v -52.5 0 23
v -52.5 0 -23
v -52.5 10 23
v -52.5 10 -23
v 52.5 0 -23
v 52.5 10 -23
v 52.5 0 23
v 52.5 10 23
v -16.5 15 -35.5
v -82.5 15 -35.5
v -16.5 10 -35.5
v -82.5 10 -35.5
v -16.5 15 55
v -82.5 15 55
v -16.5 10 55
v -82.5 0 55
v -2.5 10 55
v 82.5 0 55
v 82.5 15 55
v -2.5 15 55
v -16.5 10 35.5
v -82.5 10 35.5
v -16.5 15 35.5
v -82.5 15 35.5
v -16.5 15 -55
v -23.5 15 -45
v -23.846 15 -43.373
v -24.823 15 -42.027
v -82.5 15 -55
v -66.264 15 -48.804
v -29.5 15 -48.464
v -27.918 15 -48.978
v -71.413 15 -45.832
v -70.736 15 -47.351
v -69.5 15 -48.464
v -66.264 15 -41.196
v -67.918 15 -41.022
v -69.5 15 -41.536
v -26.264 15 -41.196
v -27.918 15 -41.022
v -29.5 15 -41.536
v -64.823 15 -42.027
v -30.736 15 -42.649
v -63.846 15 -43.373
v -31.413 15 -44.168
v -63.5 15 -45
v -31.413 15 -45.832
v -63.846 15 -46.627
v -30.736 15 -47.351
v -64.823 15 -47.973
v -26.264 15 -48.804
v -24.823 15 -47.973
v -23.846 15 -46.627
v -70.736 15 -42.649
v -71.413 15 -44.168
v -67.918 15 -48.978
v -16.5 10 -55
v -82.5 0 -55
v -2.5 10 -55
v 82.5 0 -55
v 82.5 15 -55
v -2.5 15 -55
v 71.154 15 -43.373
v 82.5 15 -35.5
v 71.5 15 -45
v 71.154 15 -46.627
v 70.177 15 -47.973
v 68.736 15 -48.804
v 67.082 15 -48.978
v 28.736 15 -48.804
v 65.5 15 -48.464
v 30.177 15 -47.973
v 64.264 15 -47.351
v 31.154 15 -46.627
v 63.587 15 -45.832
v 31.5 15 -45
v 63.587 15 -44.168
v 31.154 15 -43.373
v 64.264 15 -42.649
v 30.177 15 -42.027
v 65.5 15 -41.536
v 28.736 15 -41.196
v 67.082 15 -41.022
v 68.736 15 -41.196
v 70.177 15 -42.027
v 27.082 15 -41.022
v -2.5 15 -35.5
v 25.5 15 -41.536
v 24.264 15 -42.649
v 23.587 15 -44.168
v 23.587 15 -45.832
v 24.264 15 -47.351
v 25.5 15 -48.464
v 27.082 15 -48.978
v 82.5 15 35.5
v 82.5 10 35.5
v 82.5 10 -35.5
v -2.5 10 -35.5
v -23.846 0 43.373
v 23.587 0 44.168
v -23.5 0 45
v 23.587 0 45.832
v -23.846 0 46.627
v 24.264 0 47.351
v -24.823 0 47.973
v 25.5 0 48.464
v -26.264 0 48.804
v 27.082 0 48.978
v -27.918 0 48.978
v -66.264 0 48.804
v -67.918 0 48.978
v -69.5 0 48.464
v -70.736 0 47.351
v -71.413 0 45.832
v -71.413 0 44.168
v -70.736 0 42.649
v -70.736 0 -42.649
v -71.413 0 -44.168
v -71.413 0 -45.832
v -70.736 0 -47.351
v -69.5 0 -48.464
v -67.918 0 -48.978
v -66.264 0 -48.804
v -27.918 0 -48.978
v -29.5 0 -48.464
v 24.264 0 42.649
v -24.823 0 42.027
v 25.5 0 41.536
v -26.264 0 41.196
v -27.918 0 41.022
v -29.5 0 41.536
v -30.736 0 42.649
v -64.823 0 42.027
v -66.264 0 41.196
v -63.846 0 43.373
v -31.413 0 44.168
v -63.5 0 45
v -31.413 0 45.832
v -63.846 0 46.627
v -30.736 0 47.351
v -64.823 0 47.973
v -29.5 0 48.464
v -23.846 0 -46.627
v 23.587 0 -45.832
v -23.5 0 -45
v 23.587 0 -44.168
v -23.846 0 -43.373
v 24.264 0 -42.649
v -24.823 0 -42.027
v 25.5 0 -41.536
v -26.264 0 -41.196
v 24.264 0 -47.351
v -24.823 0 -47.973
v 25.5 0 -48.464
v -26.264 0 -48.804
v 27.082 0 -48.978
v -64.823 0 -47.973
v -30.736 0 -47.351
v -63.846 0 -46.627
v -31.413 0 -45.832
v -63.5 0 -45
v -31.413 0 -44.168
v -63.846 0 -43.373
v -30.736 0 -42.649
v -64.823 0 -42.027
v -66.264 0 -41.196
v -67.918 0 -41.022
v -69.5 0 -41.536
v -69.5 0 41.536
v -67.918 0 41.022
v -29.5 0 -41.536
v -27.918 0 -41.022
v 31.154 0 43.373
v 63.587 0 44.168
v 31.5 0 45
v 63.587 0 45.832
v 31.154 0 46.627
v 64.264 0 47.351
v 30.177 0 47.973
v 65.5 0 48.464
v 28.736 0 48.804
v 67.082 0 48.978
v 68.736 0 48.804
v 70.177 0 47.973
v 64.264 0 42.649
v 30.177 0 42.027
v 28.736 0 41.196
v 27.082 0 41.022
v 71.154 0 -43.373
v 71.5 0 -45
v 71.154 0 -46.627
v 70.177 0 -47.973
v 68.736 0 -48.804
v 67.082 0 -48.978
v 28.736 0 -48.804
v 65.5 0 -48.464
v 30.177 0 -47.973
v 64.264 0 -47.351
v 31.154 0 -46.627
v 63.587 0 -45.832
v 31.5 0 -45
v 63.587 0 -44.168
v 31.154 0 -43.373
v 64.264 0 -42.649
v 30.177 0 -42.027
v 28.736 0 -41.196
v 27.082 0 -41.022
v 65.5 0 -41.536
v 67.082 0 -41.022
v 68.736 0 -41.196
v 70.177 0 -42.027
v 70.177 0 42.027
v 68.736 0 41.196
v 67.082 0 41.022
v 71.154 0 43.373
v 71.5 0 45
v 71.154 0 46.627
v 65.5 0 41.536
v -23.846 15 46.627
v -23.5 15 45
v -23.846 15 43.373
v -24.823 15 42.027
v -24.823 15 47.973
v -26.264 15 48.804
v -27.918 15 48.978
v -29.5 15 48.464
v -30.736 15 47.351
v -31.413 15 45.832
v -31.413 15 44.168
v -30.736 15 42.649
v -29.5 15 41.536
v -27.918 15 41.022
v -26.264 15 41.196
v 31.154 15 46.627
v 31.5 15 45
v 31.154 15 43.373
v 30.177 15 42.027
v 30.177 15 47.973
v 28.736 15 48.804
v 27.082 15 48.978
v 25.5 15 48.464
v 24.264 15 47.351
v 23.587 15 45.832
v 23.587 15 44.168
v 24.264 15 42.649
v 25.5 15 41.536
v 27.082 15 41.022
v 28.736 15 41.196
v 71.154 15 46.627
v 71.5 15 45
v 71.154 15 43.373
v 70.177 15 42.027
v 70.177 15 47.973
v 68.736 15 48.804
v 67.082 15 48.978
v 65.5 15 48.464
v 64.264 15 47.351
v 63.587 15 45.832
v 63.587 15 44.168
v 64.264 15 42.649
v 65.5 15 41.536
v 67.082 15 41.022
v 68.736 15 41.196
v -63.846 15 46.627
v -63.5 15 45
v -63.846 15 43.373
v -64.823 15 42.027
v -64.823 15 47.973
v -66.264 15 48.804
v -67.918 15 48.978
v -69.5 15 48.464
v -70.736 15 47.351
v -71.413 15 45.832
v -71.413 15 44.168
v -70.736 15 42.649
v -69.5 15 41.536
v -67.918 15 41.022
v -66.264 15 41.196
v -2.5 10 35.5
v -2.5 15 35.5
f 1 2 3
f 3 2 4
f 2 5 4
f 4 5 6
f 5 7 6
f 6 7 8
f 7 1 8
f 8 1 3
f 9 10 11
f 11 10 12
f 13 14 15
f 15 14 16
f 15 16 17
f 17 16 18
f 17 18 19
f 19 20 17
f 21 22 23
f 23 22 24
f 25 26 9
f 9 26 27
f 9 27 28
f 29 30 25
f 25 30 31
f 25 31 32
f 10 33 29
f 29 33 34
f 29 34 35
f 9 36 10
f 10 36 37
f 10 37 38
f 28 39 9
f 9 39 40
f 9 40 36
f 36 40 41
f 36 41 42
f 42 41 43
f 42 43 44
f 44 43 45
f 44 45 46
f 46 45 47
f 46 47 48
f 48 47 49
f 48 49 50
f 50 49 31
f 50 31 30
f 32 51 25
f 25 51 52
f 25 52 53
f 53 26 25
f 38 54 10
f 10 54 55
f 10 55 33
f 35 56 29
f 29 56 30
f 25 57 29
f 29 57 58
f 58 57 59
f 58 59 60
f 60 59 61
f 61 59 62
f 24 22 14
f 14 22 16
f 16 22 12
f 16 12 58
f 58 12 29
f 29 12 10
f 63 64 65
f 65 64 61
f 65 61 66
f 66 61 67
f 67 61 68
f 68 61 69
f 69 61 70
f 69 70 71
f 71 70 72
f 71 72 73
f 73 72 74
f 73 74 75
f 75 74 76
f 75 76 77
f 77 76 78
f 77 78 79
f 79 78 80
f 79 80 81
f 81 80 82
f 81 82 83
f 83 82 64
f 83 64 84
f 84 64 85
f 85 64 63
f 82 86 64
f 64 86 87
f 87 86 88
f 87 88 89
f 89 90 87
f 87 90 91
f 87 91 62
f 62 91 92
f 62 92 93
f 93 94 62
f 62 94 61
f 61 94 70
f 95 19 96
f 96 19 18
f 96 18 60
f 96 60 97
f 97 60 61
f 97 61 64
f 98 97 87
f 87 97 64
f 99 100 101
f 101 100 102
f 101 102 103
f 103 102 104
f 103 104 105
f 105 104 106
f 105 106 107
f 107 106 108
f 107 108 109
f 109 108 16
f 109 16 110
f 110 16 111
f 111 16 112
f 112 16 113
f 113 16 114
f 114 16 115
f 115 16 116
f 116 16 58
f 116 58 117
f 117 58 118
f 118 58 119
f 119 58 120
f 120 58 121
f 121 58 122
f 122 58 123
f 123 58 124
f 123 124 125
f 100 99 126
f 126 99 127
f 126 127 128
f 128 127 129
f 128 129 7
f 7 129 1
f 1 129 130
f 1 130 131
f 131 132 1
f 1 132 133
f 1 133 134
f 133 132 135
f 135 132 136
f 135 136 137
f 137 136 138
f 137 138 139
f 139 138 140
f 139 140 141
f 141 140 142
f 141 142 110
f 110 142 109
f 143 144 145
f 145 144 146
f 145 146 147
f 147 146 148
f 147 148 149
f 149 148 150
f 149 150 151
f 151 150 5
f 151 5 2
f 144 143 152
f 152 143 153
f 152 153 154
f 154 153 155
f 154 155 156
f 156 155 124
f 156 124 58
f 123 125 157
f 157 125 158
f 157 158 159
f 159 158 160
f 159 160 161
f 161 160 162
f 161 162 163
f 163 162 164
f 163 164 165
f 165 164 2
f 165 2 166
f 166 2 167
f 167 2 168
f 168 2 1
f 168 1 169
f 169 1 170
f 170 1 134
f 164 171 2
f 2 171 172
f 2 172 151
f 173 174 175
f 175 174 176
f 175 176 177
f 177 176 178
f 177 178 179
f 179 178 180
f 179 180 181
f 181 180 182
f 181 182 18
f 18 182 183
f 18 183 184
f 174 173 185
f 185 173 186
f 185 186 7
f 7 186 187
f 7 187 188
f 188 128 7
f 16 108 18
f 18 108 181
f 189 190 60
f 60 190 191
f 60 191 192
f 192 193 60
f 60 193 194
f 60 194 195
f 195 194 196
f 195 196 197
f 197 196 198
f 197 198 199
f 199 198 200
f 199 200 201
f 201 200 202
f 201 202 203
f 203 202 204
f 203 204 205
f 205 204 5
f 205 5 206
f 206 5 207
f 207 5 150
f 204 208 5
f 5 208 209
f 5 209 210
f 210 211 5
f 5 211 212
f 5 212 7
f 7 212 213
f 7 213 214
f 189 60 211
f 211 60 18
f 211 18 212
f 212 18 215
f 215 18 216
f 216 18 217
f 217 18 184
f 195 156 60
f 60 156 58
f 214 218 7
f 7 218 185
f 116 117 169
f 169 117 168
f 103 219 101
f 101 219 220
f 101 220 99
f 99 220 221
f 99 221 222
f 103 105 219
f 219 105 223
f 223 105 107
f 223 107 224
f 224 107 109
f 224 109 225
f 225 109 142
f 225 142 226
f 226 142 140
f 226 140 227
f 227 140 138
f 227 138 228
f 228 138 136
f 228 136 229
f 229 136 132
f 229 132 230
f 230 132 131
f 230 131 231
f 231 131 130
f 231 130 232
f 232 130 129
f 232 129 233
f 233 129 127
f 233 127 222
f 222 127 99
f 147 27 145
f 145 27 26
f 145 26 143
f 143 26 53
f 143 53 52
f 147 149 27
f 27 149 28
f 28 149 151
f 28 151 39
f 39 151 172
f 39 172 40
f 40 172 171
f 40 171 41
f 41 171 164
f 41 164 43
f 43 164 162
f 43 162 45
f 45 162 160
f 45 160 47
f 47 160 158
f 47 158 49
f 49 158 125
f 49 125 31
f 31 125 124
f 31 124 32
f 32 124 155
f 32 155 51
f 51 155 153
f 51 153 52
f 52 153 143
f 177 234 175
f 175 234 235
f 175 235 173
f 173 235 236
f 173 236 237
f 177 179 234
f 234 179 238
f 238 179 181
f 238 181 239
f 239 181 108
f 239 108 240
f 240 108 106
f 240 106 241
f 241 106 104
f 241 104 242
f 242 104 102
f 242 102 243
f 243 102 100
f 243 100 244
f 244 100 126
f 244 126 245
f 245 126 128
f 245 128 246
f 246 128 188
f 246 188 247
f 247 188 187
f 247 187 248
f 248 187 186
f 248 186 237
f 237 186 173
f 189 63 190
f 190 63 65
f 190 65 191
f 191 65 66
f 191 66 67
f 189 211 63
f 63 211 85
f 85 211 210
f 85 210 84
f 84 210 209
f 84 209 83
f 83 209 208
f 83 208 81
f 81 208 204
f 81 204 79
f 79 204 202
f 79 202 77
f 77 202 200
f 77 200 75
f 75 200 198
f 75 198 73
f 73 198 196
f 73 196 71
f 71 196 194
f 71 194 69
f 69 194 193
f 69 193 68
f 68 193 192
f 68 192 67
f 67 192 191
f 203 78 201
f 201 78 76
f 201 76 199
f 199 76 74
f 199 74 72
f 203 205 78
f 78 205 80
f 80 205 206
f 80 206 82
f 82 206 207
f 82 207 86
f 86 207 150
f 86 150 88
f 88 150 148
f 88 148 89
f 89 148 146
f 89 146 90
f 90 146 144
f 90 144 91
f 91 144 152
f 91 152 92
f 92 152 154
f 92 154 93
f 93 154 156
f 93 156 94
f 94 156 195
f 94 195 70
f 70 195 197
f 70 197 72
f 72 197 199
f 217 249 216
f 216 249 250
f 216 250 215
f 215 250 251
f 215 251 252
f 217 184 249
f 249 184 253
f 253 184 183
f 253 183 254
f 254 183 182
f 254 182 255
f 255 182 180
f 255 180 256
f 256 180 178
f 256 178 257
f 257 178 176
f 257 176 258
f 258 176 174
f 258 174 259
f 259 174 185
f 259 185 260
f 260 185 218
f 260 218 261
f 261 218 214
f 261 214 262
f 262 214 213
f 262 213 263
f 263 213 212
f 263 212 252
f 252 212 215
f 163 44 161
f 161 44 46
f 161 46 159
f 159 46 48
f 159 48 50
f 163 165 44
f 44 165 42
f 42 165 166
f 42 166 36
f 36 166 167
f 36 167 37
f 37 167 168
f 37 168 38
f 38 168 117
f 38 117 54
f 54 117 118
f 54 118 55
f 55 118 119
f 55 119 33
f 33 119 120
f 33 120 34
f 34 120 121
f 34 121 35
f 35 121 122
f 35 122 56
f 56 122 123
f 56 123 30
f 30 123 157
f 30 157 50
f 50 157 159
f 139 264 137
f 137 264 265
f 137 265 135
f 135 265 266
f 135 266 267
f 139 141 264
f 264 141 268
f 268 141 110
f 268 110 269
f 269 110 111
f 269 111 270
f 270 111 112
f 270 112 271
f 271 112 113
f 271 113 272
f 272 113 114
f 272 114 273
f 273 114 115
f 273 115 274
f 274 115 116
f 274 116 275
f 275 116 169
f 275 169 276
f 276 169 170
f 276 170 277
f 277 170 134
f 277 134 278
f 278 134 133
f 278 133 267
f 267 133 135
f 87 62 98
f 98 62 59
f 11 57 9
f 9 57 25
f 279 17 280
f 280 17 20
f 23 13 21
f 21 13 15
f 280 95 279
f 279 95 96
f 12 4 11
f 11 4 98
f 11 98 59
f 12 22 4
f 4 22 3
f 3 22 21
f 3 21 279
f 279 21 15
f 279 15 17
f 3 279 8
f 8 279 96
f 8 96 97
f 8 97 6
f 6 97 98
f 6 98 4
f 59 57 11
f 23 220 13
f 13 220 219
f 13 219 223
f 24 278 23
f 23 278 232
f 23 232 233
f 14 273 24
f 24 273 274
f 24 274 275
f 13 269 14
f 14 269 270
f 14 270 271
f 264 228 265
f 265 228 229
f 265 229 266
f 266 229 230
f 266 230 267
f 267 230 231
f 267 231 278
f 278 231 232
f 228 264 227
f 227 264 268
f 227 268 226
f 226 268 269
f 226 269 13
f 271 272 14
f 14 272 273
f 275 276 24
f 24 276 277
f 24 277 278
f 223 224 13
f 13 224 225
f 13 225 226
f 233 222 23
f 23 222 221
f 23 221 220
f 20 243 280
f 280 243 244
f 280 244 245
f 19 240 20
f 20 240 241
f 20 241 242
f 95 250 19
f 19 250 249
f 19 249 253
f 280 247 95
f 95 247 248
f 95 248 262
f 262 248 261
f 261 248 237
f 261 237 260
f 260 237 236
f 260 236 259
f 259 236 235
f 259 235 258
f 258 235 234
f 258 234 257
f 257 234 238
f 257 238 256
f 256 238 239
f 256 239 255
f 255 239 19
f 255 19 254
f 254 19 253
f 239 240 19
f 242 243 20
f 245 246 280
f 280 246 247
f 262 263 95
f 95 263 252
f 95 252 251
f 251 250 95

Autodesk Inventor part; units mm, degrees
ref_plane "YZ Plane" through (0, 0, 0) normal (1, 0, 0) x (0, 1, 0)
ref_plane "XZ Plane" through (0, 0, 0) normal (0, 1, 0) x (-1, 0, 0)
ref_plane "XY Plane" through (0, 0, 0) normal (0, 0, 1) x (1, 0, 0)
sketch "Sketch1" plane through (0, 0, 0) normal (0, 1, 0) x (-1, 0, 0)
  line L0 (82.5, 55) -> (-82.5, 55)
  line L1 (-82.5, 55) -> (-82.5, -55)
  line L2 (-82.5, -55) -> (82.5, -55)
  line L3 (82.5, -55) -> (82.5, 55)
  line L4 (82.5, 55) -> (-82.5, -55) construction
  line L5 (-82.5, 55) -> (82.5, -55) construction
  point P0 (0, 0)
  dimension "d0" = 165
  dimension "d1" = 110
extrude "Extrusion1" add sketch "Sketch1" along normal blind 15
sketch "Sketch3" plane through (0, 15, 0) normal (0, 1, 0) x (1, 0, 0)
  line L0 (82.5, -55) -> (82.5, 55) projected
  line L1 (-82.5, -35.5) -> (82.5, -35.5)
  line L2 (82.5, -35.5) -> (82.5, 35.5)
  line L3 (82.5, 35.5) -> (-82.5, 35.5)
  line L4 (-82.5, 35.5) -> (-82.5, -35.5)
  line L5 (-82.5, -35.5) -> (82.5, 35.5) construction
  line L6 (82.5, -35.5) -> (-82.5, 35.5) construction
  point P0 (0, 0)
  dimension "d8" = 71
extrude "Extrusion3" cut sketch "Sketch3" against normal blind 5
sketch "Sketch4" plane through (0, 15, 0) normal (0, 1, 0) x (1, 0, 0)
  circle A0 centre (-67.5, -45) radius 4
  line L0 (-82.5, -55) -> (82.5, -55) projected
  line L1 (-82.5, -35.5) -> (-82.5, -55) projected
  line L2 (-82.5, -45) -> (82.5, -45)
  line L3 (82.5, -55) -> (82.5, 55) projected
  circle A1 centre (-27.5, -45) radius 4
  line L4 (-82.5, -55) -> (82.5, -55) projected
  line L5 (0, -55) -> (0, 55)
  line L6 (82.5, 55) -> (-82.5, 55) projected
  line L7 (-82.5, 55) -> (-82.5, -55) projected
  line L8 (-82.5, 0) -> (82.5, 0)
  circle A2 centre (67.5, -45) radius 4
  circle A3 centre (27.5, -45) radius 4
  circle A4 centre (-67.5, 45) radius 4
  circle A5 centre (-27.5, 45) radius 4
  circle A6 centre (67.5, 45) radius 4
  circle A7 centre (27.5, 45) radius 4
  point P0 (0, 0)
  dimension "d11" = 10
  dimension "d12" = 8
  dimension "d17" = 15
  dimension "d19" = 27.5
sketch "Sketch5" plane through (0, 10, 0) normal (0, 1, 0) x (1, 0, 0)
  line L0 (-52.5, -23) -> (52.5, -23)
  line L1 (52.5, -23) -> (52.5, 23)
  line L2 (52.5, 23) -> (-52.5, 23)
  line L3 (-52.5, 23) -> (-52.5, -23)
  line L4 (-52.5, -23) -> (52.5, 23) construction
  line L5 (52.5, -23) -> (-52.5, 23) construction
  line L6 (-82.5, 35.5) -> (82.5, 35.5) projected
  line L7 (-82.5, -35.5) -> (-82.5, 35.5) projected
  point P0 (0, 0)
  dimension "d13" = 12.5
  dimension "d14" = 30
extrude "Extrusion4" cut sketch "Sketch5" against normal through all
extrude "Extrusion5" cut sketch "Sketch4" against normal through all contours L2 A0 | A0 L2 | A1 L2 | L2 A1 | A3 L2 | L2 A3 | A2 L2 | L2 A2 | A4 | A5 | A6 | A7
sketch "Sketch6" plane through (0, 15, 0) normal (0, 1, 0) x (1, 0, 0)
  line L0 (-82.5, -55) -> (82.5, -55) projected
  line L1 (82.5, 55) -> (-82.5, 55) projected
  line L2 (-16.5, -55) -> (-2.5, -55)
  line L3 (-2.5, -55) -> (-2.5, 55)
  line L4 (-2.5, 55) -> (-16.5, 55)
  line L5 (-16.5, 55) -> (-16.5, -55)
  line L6 (82.5, -55) -> (82.5, -35.5) projected
  point P0 (0, 0)
  dimension "d22" = 85
  dimension "d23" = 14
extrude "Extrusion6" cut sketch "Sketch6" against normal up to surface (5 mm away)
properties part number "Clamps_v4_davidcell"
